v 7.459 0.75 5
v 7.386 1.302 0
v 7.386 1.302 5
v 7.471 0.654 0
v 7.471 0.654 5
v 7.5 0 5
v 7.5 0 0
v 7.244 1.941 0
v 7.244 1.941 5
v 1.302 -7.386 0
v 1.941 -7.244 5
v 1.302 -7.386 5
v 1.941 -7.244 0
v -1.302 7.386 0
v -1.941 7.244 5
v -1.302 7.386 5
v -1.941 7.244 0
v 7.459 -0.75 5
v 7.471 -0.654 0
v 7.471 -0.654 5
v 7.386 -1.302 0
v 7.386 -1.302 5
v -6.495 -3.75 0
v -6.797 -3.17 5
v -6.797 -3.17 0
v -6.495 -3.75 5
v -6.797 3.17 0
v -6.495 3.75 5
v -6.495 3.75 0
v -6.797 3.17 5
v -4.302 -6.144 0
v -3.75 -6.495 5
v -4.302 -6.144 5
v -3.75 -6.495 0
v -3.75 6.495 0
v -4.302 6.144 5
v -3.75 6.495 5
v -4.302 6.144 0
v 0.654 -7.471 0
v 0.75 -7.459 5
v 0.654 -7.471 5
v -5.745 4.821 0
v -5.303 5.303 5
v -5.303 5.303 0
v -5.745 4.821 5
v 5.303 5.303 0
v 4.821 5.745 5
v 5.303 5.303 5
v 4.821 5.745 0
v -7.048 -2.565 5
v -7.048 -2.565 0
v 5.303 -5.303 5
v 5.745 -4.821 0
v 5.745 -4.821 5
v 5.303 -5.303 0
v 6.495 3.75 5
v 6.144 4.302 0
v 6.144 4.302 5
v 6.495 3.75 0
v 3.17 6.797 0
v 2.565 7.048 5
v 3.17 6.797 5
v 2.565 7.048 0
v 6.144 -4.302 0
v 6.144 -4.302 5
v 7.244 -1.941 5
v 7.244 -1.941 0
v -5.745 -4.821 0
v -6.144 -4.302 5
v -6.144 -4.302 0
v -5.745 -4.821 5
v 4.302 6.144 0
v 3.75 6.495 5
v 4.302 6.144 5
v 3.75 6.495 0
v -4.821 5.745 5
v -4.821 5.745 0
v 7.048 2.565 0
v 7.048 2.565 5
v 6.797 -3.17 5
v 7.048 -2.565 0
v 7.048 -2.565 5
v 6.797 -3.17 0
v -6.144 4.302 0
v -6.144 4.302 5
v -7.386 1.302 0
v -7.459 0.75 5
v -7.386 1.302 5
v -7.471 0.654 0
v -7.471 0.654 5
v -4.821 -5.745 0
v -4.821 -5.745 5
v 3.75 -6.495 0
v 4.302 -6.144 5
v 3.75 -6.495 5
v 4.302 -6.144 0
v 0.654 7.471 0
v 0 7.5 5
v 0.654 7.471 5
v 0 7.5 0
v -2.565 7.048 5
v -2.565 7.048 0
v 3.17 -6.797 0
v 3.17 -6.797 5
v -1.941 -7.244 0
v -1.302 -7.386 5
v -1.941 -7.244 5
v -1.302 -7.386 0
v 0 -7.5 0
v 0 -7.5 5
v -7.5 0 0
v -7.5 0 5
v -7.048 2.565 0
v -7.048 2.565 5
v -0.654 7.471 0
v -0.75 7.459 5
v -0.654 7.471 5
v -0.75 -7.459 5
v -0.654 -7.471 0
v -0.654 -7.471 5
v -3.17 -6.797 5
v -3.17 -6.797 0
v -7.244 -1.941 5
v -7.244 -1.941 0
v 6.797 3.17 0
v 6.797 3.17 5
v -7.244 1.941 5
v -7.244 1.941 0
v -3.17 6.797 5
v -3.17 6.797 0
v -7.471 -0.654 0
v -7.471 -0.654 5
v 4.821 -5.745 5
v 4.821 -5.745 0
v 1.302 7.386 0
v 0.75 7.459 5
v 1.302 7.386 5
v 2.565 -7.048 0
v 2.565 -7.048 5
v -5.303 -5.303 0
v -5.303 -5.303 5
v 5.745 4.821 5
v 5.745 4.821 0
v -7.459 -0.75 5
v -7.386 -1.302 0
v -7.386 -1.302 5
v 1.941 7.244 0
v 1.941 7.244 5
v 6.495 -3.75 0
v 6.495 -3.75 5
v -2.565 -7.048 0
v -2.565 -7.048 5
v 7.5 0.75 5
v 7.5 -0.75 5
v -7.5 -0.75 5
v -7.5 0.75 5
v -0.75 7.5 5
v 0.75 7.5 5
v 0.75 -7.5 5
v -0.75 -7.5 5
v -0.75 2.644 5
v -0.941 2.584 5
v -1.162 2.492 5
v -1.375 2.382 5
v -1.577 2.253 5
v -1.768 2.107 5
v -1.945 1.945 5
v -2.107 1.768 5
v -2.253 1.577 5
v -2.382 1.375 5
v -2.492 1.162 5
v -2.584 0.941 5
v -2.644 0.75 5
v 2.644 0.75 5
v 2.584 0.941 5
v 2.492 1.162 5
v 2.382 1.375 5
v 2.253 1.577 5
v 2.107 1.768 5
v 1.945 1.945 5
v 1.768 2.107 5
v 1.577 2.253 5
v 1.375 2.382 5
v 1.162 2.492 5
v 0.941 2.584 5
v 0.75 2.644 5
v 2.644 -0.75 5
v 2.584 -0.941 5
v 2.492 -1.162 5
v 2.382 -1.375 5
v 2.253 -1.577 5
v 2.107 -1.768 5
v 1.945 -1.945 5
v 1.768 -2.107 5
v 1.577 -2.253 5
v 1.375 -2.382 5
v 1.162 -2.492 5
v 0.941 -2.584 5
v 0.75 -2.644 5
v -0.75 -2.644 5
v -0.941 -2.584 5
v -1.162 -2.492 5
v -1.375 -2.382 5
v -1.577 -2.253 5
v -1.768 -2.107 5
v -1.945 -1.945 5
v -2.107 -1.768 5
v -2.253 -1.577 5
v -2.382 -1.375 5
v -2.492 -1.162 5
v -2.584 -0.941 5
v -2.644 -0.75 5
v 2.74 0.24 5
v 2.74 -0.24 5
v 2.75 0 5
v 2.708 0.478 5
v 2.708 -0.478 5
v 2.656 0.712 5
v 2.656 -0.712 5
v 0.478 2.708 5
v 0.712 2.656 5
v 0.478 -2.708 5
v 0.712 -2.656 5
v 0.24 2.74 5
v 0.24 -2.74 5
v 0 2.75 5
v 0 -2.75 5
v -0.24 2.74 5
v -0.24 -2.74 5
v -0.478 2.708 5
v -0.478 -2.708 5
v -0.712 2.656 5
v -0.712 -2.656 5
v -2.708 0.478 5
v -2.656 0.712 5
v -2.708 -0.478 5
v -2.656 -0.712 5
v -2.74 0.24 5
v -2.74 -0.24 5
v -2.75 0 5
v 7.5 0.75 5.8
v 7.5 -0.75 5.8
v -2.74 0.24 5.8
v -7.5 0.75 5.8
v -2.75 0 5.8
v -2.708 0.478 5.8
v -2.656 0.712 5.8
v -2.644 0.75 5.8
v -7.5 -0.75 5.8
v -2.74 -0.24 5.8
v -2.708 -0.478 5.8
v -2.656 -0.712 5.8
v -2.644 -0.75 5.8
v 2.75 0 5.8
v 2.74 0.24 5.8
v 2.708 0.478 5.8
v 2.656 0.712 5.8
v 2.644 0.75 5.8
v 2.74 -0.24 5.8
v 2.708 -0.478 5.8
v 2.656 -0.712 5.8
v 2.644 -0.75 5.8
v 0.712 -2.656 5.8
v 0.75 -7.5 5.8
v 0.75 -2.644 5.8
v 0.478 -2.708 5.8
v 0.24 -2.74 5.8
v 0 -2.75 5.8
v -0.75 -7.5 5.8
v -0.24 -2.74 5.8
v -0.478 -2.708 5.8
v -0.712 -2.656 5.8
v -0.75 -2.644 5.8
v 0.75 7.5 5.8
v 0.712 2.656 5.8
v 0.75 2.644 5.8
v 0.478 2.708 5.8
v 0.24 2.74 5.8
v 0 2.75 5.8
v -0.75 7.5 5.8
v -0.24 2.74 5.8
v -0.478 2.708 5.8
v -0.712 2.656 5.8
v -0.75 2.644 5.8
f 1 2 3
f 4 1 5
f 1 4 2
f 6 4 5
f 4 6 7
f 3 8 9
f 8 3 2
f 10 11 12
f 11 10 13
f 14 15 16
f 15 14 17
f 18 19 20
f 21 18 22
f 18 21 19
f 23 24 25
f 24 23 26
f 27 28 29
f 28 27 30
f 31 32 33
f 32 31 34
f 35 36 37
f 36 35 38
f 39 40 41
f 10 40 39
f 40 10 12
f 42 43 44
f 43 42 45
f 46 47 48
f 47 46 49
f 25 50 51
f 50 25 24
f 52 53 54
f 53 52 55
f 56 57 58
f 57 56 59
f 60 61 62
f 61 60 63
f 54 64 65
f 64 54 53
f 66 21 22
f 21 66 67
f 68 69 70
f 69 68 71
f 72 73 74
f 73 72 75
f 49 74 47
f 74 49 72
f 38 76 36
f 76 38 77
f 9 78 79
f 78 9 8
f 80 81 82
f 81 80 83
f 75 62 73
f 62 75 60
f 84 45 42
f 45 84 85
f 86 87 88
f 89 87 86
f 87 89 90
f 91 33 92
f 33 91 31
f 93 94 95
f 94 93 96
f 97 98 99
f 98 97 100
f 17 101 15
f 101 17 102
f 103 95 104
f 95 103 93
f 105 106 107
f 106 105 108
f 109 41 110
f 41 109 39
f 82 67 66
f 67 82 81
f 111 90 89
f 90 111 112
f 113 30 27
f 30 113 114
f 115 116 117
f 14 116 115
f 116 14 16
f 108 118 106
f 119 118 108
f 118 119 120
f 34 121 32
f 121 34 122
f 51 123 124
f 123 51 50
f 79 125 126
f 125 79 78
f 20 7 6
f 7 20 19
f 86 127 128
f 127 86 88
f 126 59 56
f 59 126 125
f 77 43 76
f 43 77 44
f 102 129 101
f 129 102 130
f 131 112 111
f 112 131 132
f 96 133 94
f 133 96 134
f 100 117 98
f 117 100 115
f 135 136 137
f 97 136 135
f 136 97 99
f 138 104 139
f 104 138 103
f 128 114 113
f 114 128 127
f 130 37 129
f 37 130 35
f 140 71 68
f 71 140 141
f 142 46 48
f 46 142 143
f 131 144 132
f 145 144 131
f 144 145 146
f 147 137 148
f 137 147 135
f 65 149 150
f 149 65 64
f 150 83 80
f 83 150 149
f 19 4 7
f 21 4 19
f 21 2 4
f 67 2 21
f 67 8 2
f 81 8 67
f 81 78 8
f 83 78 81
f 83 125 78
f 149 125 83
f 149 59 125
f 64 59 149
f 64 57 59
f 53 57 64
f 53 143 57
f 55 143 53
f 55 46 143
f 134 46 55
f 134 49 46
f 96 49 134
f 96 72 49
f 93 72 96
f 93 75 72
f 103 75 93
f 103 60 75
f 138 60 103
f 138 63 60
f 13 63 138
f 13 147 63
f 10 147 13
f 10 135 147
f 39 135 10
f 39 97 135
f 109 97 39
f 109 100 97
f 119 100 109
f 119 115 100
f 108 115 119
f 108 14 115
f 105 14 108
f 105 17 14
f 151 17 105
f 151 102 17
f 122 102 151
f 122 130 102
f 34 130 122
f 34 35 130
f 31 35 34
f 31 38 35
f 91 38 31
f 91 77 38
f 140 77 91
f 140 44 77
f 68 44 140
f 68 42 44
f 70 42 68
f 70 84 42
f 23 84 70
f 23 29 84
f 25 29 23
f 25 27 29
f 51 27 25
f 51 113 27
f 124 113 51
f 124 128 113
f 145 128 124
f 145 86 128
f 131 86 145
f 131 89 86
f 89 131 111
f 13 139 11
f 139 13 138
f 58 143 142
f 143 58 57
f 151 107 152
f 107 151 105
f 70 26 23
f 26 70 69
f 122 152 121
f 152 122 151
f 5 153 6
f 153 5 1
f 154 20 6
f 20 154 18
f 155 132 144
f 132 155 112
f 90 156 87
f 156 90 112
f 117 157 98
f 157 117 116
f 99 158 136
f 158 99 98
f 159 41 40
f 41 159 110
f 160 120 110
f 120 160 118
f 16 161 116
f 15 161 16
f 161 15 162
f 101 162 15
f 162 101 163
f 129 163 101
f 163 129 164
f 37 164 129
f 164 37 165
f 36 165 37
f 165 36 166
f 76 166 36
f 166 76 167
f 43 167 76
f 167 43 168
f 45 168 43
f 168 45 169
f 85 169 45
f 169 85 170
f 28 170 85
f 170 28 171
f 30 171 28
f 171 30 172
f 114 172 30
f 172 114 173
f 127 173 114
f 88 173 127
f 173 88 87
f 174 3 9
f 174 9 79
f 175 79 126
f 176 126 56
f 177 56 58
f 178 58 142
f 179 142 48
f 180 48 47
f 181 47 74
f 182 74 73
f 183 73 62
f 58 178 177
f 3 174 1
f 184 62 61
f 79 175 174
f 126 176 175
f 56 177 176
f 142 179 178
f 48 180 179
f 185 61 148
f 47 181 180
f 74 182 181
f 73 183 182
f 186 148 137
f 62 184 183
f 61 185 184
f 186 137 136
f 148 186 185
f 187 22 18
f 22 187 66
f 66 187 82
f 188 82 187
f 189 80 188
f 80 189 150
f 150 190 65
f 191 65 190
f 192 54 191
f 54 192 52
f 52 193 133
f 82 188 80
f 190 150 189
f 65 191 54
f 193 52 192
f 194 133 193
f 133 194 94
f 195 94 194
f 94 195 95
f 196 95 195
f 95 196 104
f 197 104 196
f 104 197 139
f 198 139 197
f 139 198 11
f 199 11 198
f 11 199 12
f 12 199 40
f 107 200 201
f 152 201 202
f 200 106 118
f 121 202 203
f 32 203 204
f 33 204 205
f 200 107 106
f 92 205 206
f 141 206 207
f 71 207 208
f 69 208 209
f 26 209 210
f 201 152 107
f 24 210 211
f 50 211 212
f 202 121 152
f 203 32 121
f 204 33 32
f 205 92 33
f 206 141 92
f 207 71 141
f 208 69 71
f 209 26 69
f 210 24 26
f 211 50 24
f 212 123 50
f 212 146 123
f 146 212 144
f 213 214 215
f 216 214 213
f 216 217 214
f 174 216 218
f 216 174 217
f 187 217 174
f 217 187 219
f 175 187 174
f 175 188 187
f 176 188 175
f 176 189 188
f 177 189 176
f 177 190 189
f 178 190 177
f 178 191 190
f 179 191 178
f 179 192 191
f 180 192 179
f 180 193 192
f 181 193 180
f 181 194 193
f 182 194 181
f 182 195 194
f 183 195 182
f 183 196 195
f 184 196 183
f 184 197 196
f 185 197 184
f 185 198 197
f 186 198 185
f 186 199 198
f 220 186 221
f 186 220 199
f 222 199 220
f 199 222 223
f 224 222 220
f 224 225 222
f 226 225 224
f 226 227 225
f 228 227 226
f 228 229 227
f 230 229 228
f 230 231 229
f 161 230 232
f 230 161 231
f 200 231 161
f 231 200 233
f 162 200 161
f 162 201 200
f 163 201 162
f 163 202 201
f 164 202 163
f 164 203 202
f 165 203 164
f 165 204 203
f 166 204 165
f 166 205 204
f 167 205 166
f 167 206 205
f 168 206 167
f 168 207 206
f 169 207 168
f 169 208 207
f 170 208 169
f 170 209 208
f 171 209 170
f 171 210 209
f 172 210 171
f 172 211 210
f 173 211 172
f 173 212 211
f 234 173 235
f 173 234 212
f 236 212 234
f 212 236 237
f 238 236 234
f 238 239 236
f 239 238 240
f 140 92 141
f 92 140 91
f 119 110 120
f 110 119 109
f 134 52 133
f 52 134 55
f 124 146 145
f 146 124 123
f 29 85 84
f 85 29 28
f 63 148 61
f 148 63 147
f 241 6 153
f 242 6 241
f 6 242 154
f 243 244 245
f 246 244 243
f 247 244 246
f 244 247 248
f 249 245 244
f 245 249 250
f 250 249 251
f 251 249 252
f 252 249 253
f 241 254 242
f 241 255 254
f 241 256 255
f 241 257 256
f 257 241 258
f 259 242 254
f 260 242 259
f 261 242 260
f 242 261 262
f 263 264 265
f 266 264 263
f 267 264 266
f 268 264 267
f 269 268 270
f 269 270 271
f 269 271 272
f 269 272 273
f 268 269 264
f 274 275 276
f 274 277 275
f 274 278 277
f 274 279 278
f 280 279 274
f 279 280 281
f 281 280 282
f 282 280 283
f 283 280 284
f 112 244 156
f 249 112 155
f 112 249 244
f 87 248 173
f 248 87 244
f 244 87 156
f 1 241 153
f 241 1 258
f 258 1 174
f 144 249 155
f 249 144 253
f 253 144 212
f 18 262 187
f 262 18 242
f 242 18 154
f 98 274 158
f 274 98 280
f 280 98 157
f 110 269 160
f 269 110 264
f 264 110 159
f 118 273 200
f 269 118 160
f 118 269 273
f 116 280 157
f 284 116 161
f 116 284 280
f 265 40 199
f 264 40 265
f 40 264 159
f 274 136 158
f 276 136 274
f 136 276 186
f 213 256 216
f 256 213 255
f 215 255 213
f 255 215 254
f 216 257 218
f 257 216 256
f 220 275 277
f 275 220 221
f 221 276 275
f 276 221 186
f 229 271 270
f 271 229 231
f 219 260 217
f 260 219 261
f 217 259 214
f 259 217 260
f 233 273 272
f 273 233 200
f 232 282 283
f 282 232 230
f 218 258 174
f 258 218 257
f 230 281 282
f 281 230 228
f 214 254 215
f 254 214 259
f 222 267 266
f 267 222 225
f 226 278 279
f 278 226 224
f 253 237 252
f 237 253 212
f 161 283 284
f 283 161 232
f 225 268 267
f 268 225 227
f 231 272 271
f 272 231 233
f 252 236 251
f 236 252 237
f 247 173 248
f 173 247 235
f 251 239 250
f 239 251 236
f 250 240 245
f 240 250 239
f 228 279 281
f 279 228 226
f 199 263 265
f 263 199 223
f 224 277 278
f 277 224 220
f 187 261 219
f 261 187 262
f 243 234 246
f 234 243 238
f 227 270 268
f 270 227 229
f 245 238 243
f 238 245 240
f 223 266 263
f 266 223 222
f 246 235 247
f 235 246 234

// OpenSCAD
// Adaptor to hold tubing to be directed at windows of CD250
$fa=5;
$fs=0.1;// 
thick=5;// 
dia=15;//
sw=1.5;//spanner_width
st=0.8;//spanner_thickness
sd=5.5;//spanner_diameter
difference(){
union(){
cylinder(h=thick,d=dia);
translate([-dia/2,-sw/2,thick])cube([dia,sw,st]);
rotate(a=90,v=[0,0,1])translate([-dia/2,-sw/2,thick])cube([dia,sw,st]);
}
translate([0,0,thick])cylinder(h=5,d=sd);
}
